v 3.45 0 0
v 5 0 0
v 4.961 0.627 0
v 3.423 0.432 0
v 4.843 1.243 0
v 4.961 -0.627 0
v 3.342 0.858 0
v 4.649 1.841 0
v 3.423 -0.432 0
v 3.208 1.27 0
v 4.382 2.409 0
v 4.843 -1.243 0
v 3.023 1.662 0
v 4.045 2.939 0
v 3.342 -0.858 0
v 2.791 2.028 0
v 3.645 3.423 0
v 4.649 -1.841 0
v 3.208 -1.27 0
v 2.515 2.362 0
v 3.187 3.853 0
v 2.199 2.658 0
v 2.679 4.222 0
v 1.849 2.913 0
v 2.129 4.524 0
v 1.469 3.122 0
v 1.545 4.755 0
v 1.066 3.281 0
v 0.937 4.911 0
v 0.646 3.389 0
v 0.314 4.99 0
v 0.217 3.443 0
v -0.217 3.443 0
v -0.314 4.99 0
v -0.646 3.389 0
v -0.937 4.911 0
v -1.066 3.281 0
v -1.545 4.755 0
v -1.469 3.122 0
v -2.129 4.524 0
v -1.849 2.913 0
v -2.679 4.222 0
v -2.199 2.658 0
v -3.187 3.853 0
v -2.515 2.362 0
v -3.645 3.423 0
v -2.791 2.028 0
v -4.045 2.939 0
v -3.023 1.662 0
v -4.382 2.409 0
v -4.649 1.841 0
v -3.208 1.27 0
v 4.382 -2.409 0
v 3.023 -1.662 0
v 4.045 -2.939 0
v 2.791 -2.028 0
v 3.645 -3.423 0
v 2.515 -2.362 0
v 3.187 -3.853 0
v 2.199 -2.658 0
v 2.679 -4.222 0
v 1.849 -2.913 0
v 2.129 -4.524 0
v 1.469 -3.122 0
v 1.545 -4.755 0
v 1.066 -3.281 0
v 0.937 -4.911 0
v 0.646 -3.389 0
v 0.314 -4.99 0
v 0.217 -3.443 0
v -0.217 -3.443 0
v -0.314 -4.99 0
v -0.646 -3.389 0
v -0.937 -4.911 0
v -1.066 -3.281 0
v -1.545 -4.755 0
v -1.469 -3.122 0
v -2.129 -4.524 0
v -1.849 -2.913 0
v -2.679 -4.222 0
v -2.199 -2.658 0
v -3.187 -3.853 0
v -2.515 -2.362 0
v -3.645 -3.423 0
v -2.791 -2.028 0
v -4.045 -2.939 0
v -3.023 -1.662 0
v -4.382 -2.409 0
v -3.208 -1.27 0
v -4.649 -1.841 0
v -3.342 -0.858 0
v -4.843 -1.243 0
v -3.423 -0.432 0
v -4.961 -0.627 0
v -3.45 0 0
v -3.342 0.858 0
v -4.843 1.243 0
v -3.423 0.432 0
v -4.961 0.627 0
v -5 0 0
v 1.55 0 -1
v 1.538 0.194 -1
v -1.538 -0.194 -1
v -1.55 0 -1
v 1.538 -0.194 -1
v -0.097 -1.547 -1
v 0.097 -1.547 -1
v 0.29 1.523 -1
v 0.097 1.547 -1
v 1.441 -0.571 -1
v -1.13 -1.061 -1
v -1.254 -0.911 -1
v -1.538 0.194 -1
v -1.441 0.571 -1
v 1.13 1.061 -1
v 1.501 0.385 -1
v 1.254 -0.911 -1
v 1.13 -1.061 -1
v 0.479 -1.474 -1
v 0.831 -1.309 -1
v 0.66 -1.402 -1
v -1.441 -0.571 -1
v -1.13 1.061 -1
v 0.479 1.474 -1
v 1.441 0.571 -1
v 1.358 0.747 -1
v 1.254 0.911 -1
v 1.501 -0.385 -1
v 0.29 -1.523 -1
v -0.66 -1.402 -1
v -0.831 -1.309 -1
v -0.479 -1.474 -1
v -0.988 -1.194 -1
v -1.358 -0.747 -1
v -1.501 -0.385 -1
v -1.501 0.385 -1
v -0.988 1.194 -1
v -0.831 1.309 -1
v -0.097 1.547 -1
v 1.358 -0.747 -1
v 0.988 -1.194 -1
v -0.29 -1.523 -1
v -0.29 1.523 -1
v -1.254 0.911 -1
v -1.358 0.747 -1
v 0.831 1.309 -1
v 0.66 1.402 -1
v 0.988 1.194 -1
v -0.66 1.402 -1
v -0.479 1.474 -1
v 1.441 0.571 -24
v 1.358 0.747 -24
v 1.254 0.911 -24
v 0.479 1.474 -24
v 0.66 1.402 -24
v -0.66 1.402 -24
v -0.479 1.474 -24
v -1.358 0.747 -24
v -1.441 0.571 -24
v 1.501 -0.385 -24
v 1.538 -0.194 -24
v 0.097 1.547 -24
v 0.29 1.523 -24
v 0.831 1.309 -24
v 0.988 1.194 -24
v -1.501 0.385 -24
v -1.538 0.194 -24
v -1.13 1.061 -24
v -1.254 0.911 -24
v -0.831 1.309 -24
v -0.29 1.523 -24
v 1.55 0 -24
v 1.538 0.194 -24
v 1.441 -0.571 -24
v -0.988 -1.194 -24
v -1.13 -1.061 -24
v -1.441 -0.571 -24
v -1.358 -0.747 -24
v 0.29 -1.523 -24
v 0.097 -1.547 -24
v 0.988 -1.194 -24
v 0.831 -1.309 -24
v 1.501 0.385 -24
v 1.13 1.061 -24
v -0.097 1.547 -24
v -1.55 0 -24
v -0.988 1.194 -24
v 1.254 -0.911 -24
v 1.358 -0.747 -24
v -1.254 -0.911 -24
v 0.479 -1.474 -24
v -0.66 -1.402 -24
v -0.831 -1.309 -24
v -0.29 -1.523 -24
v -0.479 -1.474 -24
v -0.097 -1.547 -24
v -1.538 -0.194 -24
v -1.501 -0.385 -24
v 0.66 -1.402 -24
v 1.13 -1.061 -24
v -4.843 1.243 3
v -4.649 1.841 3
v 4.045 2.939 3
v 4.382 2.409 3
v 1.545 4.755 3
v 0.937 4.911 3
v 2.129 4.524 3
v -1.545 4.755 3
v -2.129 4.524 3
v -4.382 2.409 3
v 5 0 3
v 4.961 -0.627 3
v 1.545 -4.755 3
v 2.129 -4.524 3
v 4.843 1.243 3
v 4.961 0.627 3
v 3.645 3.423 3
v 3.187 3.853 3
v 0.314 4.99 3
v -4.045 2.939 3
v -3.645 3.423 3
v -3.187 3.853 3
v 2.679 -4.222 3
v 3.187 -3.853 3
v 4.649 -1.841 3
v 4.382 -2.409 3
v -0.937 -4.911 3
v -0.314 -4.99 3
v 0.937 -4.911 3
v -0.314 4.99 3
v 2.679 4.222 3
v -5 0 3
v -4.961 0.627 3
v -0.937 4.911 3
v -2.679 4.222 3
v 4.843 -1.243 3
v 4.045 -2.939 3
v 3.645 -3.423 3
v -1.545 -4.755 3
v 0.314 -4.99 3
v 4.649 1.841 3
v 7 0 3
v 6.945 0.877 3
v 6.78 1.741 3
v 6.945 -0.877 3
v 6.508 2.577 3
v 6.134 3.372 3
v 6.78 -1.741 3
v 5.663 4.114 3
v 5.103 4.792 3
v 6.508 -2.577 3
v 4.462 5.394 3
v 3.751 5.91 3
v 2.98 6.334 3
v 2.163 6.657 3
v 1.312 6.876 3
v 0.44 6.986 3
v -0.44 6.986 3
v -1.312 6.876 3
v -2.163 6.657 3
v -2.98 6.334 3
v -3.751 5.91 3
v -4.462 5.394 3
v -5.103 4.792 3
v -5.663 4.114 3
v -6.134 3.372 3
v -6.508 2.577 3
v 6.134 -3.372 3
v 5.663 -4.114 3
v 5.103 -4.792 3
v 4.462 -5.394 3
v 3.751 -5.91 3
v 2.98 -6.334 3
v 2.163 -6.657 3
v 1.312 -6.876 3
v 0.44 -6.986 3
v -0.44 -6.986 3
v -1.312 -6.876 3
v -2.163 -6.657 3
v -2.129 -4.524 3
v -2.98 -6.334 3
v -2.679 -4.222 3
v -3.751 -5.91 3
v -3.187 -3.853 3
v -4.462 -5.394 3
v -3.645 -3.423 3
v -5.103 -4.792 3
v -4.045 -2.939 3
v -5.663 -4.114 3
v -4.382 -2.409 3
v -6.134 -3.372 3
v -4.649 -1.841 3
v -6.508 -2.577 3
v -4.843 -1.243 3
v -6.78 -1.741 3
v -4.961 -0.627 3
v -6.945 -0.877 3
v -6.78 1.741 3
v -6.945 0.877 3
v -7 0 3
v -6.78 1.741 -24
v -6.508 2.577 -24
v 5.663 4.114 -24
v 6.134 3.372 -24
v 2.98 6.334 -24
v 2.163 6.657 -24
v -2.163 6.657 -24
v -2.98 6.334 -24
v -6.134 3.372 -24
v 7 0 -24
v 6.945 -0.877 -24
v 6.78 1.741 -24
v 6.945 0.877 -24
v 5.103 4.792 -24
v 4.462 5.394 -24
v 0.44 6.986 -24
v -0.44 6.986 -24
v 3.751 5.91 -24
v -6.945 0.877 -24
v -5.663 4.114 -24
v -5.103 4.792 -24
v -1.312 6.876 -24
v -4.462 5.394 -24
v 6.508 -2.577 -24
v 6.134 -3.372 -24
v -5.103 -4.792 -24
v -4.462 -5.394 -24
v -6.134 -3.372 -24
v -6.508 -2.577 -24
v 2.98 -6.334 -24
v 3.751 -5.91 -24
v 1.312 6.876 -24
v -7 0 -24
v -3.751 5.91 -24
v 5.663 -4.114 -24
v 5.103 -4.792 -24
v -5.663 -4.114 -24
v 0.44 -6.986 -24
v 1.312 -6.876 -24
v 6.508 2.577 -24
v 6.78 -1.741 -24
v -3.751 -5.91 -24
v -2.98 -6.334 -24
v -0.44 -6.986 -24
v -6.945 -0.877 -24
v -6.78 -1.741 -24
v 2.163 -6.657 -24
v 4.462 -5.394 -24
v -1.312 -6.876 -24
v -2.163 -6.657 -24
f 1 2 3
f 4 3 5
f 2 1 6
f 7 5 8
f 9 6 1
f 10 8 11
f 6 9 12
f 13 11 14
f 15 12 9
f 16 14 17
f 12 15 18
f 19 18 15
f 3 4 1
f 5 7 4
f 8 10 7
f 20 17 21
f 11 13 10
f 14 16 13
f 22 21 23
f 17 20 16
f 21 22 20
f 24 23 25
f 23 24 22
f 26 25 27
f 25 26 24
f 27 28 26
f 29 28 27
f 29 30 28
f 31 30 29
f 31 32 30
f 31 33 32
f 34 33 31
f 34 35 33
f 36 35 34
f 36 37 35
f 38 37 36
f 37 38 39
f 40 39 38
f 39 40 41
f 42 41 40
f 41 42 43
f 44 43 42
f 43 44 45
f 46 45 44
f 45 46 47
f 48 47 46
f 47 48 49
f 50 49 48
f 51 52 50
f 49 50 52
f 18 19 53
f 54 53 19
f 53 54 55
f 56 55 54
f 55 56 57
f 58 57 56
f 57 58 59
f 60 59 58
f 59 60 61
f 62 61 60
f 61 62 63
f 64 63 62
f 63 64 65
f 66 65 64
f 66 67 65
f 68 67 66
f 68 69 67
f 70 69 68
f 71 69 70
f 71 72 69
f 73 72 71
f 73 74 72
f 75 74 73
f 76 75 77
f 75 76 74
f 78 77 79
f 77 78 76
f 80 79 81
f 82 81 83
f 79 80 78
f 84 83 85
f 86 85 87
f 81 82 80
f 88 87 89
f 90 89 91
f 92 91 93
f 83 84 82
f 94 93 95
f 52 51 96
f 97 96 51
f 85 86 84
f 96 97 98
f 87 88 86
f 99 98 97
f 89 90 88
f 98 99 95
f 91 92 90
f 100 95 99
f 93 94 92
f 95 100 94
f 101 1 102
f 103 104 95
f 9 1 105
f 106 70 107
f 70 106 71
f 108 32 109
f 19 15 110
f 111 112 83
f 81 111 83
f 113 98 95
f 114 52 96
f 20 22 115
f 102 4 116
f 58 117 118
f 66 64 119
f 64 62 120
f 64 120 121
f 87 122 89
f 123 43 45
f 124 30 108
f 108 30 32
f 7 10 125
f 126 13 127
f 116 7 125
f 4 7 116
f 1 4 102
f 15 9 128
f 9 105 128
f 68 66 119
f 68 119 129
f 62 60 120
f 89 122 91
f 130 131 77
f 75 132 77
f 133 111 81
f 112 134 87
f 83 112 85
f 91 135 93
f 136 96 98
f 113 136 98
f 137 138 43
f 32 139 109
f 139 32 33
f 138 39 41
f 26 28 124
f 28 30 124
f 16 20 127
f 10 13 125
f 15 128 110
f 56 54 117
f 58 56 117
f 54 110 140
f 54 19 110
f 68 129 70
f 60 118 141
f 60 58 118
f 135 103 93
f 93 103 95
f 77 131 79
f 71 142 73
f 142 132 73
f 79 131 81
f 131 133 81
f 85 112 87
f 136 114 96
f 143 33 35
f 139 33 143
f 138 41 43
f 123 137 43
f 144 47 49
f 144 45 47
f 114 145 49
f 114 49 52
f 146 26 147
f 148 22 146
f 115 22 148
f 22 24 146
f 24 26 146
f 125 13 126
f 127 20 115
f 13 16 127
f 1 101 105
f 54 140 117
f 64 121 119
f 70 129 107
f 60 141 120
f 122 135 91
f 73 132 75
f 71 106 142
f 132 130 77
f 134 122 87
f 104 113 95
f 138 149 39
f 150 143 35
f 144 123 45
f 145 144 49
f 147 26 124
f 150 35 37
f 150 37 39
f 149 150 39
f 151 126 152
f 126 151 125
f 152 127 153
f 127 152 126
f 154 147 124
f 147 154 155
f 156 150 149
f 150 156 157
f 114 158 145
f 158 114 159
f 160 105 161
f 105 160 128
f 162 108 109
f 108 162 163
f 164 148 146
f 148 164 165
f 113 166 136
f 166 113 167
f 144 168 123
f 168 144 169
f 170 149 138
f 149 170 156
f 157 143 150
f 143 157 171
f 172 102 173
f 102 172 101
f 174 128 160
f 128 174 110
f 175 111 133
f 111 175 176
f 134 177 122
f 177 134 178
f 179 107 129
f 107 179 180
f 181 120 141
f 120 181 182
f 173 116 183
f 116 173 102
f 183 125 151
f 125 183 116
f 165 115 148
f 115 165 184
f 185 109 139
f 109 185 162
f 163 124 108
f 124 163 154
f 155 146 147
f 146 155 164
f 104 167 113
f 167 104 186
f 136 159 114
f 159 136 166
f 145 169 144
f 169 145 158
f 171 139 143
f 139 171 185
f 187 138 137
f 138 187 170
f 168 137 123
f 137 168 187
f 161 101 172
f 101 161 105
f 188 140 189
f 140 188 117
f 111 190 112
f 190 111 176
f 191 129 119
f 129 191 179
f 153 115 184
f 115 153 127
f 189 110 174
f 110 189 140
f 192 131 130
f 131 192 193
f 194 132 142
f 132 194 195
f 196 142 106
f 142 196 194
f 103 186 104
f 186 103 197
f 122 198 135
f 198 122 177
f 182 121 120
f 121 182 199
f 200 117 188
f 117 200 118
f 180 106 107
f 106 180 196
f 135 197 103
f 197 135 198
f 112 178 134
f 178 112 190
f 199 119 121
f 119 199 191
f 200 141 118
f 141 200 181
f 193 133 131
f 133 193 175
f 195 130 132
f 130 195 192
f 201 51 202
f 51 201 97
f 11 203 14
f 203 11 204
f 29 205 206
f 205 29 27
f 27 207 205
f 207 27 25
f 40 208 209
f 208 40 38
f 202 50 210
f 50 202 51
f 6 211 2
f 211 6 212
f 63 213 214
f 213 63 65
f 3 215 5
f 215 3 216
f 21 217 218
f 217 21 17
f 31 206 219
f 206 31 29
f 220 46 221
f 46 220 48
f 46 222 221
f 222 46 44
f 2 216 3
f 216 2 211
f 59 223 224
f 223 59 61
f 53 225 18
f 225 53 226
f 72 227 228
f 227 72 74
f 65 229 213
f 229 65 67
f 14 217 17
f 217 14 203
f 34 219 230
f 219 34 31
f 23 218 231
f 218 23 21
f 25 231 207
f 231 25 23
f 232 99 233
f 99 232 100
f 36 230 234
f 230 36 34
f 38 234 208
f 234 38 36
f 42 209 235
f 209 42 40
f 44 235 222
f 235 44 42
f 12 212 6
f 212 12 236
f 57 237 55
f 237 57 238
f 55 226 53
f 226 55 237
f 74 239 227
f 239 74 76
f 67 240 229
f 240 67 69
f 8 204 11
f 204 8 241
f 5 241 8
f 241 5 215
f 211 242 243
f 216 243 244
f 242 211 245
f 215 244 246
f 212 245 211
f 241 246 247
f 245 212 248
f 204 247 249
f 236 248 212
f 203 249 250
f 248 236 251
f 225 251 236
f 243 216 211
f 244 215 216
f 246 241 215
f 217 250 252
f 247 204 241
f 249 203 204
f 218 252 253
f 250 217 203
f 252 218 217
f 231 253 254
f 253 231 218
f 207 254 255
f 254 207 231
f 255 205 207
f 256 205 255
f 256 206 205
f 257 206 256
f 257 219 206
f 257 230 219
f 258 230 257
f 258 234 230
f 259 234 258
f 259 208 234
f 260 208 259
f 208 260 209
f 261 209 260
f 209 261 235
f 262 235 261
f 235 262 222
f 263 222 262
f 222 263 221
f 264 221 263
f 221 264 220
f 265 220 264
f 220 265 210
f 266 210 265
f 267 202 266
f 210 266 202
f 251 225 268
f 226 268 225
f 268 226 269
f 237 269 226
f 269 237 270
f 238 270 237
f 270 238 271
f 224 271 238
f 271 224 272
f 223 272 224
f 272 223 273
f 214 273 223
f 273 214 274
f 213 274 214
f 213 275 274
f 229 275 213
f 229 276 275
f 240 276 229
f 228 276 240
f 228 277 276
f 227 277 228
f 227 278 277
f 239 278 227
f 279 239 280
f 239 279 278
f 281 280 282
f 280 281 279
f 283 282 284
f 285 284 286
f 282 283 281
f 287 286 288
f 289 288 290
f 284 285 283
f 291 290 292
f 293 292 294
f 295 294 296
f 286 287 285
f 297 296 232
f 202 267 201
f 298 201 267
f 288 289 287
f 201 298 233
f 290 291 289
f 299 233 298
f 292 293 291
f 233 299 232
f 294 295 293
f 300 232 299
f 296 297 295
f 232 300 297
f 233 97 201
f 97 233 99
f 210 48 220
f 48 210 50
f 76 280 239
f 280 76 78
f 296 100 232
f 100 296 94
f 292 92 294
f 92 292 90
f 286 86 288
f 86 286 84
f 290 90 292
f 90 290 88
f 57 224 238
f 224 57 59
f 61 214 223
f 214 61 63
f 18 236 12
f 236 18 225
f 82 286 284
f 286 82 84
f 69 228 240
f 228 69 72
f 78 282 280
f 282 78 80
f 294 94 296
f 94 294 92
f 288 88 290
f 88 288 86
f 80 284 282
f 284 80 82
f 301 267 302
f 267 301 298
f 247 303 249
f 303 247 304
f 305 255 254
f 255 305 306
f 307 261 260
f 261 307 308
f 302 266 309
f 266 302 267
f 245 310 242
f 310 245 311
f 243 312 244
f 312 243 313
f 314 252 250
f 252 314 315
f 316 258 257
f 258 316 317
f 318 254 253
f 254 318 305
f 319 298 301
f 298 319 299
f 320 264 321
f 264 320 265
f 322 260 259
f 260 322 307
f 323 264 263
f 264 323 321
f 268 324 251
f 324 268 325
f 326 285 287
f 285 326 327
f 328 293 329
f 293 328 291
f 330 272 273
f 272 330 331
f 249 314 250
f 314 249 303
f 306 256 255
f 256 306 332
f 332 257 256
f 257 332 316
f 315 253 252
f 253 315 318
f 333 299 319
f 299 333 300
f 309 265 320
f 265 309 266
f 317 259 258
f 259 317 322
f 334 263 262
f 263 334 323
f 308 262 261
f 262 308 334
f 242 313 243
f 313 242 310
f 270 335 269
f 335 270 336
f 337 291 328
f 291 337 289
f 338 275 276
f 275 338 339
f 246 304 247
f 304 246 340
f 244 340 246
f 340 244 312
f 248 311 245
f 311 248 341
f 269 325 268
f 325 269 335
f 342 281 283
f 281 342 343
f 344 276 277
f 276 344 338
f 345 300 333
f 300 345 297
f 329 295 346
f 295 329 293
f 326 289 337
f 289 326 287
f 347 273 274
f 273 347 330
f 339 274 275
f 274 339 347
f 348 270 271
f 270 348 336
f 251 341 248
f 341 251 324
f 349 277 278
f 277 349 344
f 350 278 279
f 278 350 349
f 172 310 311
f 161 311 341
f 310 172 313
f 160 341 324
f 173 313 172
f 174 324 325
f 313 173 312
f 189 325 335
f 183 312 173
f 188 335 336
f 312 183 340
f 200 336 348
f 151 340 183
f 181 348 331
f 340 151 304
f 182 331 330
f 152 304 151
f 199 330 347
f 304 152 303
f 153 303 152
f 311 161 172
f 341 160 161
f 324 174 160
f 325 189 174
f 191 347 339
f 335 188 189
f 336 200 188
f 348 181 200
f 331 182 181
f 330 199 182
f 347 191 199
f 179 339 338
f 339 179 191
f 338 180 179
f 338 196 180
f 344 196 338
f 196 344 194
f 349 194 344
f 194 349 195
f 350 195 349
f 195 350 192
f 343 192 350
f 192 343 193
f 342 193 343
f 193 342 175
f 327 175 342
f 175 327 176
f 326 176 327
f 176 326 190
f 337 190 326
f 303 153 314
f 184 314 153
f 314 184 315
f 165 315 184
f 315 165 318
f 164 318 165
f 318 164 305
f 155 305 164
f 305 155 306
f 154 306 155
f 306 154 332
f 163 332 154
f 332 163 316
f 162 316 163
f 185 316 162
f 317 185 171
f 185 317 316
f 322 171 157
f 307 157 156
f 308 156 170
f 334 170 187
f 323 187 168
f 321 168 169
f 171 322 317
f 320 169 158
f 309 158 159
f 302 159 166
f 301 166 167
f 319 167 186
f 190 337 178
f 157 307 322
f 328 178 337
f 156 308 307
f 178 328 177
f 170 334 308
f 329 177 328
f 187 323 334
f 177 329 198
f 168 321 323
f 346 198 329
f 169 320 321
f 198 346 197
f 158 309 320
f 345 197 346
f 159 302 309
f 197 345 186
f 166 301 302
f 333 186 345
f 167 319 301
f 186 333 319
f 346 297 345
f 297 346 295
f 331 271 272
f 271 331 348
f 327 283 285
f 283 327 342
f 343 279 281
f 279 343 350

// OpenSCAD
$fn = 50;

difference() {
	union() {
		translate(v = [0, 0, -24.0]) {
			cylinder(h = 27, r = 7.0);
		}
	}
	union() {
		translate(v = [0, 0, 0]) {
			rotate(a = [0, 0, 0]) {
				difference() {
					union() {
						translate(v = [0, 0, -27.0]) {
							cylinder(h = 27, r = 1.25);
						}
						translate(v = [0, 0, -1.0]) {
							cylinder(h = 1.0, r1 = 1.55, r2 = 3.45);
						}
						translate(v = [0, 0, -27.0]) {
							cylinder(h = 27, r = 1.55);
						}
						translate(v = [0, 0, -27.0]) {
							cylinder(h = 27, r = 1.25);
						}
					}
					union();
				}
			}
		}
		#cylinder(h = 3, r = 5.0);
	}
}
